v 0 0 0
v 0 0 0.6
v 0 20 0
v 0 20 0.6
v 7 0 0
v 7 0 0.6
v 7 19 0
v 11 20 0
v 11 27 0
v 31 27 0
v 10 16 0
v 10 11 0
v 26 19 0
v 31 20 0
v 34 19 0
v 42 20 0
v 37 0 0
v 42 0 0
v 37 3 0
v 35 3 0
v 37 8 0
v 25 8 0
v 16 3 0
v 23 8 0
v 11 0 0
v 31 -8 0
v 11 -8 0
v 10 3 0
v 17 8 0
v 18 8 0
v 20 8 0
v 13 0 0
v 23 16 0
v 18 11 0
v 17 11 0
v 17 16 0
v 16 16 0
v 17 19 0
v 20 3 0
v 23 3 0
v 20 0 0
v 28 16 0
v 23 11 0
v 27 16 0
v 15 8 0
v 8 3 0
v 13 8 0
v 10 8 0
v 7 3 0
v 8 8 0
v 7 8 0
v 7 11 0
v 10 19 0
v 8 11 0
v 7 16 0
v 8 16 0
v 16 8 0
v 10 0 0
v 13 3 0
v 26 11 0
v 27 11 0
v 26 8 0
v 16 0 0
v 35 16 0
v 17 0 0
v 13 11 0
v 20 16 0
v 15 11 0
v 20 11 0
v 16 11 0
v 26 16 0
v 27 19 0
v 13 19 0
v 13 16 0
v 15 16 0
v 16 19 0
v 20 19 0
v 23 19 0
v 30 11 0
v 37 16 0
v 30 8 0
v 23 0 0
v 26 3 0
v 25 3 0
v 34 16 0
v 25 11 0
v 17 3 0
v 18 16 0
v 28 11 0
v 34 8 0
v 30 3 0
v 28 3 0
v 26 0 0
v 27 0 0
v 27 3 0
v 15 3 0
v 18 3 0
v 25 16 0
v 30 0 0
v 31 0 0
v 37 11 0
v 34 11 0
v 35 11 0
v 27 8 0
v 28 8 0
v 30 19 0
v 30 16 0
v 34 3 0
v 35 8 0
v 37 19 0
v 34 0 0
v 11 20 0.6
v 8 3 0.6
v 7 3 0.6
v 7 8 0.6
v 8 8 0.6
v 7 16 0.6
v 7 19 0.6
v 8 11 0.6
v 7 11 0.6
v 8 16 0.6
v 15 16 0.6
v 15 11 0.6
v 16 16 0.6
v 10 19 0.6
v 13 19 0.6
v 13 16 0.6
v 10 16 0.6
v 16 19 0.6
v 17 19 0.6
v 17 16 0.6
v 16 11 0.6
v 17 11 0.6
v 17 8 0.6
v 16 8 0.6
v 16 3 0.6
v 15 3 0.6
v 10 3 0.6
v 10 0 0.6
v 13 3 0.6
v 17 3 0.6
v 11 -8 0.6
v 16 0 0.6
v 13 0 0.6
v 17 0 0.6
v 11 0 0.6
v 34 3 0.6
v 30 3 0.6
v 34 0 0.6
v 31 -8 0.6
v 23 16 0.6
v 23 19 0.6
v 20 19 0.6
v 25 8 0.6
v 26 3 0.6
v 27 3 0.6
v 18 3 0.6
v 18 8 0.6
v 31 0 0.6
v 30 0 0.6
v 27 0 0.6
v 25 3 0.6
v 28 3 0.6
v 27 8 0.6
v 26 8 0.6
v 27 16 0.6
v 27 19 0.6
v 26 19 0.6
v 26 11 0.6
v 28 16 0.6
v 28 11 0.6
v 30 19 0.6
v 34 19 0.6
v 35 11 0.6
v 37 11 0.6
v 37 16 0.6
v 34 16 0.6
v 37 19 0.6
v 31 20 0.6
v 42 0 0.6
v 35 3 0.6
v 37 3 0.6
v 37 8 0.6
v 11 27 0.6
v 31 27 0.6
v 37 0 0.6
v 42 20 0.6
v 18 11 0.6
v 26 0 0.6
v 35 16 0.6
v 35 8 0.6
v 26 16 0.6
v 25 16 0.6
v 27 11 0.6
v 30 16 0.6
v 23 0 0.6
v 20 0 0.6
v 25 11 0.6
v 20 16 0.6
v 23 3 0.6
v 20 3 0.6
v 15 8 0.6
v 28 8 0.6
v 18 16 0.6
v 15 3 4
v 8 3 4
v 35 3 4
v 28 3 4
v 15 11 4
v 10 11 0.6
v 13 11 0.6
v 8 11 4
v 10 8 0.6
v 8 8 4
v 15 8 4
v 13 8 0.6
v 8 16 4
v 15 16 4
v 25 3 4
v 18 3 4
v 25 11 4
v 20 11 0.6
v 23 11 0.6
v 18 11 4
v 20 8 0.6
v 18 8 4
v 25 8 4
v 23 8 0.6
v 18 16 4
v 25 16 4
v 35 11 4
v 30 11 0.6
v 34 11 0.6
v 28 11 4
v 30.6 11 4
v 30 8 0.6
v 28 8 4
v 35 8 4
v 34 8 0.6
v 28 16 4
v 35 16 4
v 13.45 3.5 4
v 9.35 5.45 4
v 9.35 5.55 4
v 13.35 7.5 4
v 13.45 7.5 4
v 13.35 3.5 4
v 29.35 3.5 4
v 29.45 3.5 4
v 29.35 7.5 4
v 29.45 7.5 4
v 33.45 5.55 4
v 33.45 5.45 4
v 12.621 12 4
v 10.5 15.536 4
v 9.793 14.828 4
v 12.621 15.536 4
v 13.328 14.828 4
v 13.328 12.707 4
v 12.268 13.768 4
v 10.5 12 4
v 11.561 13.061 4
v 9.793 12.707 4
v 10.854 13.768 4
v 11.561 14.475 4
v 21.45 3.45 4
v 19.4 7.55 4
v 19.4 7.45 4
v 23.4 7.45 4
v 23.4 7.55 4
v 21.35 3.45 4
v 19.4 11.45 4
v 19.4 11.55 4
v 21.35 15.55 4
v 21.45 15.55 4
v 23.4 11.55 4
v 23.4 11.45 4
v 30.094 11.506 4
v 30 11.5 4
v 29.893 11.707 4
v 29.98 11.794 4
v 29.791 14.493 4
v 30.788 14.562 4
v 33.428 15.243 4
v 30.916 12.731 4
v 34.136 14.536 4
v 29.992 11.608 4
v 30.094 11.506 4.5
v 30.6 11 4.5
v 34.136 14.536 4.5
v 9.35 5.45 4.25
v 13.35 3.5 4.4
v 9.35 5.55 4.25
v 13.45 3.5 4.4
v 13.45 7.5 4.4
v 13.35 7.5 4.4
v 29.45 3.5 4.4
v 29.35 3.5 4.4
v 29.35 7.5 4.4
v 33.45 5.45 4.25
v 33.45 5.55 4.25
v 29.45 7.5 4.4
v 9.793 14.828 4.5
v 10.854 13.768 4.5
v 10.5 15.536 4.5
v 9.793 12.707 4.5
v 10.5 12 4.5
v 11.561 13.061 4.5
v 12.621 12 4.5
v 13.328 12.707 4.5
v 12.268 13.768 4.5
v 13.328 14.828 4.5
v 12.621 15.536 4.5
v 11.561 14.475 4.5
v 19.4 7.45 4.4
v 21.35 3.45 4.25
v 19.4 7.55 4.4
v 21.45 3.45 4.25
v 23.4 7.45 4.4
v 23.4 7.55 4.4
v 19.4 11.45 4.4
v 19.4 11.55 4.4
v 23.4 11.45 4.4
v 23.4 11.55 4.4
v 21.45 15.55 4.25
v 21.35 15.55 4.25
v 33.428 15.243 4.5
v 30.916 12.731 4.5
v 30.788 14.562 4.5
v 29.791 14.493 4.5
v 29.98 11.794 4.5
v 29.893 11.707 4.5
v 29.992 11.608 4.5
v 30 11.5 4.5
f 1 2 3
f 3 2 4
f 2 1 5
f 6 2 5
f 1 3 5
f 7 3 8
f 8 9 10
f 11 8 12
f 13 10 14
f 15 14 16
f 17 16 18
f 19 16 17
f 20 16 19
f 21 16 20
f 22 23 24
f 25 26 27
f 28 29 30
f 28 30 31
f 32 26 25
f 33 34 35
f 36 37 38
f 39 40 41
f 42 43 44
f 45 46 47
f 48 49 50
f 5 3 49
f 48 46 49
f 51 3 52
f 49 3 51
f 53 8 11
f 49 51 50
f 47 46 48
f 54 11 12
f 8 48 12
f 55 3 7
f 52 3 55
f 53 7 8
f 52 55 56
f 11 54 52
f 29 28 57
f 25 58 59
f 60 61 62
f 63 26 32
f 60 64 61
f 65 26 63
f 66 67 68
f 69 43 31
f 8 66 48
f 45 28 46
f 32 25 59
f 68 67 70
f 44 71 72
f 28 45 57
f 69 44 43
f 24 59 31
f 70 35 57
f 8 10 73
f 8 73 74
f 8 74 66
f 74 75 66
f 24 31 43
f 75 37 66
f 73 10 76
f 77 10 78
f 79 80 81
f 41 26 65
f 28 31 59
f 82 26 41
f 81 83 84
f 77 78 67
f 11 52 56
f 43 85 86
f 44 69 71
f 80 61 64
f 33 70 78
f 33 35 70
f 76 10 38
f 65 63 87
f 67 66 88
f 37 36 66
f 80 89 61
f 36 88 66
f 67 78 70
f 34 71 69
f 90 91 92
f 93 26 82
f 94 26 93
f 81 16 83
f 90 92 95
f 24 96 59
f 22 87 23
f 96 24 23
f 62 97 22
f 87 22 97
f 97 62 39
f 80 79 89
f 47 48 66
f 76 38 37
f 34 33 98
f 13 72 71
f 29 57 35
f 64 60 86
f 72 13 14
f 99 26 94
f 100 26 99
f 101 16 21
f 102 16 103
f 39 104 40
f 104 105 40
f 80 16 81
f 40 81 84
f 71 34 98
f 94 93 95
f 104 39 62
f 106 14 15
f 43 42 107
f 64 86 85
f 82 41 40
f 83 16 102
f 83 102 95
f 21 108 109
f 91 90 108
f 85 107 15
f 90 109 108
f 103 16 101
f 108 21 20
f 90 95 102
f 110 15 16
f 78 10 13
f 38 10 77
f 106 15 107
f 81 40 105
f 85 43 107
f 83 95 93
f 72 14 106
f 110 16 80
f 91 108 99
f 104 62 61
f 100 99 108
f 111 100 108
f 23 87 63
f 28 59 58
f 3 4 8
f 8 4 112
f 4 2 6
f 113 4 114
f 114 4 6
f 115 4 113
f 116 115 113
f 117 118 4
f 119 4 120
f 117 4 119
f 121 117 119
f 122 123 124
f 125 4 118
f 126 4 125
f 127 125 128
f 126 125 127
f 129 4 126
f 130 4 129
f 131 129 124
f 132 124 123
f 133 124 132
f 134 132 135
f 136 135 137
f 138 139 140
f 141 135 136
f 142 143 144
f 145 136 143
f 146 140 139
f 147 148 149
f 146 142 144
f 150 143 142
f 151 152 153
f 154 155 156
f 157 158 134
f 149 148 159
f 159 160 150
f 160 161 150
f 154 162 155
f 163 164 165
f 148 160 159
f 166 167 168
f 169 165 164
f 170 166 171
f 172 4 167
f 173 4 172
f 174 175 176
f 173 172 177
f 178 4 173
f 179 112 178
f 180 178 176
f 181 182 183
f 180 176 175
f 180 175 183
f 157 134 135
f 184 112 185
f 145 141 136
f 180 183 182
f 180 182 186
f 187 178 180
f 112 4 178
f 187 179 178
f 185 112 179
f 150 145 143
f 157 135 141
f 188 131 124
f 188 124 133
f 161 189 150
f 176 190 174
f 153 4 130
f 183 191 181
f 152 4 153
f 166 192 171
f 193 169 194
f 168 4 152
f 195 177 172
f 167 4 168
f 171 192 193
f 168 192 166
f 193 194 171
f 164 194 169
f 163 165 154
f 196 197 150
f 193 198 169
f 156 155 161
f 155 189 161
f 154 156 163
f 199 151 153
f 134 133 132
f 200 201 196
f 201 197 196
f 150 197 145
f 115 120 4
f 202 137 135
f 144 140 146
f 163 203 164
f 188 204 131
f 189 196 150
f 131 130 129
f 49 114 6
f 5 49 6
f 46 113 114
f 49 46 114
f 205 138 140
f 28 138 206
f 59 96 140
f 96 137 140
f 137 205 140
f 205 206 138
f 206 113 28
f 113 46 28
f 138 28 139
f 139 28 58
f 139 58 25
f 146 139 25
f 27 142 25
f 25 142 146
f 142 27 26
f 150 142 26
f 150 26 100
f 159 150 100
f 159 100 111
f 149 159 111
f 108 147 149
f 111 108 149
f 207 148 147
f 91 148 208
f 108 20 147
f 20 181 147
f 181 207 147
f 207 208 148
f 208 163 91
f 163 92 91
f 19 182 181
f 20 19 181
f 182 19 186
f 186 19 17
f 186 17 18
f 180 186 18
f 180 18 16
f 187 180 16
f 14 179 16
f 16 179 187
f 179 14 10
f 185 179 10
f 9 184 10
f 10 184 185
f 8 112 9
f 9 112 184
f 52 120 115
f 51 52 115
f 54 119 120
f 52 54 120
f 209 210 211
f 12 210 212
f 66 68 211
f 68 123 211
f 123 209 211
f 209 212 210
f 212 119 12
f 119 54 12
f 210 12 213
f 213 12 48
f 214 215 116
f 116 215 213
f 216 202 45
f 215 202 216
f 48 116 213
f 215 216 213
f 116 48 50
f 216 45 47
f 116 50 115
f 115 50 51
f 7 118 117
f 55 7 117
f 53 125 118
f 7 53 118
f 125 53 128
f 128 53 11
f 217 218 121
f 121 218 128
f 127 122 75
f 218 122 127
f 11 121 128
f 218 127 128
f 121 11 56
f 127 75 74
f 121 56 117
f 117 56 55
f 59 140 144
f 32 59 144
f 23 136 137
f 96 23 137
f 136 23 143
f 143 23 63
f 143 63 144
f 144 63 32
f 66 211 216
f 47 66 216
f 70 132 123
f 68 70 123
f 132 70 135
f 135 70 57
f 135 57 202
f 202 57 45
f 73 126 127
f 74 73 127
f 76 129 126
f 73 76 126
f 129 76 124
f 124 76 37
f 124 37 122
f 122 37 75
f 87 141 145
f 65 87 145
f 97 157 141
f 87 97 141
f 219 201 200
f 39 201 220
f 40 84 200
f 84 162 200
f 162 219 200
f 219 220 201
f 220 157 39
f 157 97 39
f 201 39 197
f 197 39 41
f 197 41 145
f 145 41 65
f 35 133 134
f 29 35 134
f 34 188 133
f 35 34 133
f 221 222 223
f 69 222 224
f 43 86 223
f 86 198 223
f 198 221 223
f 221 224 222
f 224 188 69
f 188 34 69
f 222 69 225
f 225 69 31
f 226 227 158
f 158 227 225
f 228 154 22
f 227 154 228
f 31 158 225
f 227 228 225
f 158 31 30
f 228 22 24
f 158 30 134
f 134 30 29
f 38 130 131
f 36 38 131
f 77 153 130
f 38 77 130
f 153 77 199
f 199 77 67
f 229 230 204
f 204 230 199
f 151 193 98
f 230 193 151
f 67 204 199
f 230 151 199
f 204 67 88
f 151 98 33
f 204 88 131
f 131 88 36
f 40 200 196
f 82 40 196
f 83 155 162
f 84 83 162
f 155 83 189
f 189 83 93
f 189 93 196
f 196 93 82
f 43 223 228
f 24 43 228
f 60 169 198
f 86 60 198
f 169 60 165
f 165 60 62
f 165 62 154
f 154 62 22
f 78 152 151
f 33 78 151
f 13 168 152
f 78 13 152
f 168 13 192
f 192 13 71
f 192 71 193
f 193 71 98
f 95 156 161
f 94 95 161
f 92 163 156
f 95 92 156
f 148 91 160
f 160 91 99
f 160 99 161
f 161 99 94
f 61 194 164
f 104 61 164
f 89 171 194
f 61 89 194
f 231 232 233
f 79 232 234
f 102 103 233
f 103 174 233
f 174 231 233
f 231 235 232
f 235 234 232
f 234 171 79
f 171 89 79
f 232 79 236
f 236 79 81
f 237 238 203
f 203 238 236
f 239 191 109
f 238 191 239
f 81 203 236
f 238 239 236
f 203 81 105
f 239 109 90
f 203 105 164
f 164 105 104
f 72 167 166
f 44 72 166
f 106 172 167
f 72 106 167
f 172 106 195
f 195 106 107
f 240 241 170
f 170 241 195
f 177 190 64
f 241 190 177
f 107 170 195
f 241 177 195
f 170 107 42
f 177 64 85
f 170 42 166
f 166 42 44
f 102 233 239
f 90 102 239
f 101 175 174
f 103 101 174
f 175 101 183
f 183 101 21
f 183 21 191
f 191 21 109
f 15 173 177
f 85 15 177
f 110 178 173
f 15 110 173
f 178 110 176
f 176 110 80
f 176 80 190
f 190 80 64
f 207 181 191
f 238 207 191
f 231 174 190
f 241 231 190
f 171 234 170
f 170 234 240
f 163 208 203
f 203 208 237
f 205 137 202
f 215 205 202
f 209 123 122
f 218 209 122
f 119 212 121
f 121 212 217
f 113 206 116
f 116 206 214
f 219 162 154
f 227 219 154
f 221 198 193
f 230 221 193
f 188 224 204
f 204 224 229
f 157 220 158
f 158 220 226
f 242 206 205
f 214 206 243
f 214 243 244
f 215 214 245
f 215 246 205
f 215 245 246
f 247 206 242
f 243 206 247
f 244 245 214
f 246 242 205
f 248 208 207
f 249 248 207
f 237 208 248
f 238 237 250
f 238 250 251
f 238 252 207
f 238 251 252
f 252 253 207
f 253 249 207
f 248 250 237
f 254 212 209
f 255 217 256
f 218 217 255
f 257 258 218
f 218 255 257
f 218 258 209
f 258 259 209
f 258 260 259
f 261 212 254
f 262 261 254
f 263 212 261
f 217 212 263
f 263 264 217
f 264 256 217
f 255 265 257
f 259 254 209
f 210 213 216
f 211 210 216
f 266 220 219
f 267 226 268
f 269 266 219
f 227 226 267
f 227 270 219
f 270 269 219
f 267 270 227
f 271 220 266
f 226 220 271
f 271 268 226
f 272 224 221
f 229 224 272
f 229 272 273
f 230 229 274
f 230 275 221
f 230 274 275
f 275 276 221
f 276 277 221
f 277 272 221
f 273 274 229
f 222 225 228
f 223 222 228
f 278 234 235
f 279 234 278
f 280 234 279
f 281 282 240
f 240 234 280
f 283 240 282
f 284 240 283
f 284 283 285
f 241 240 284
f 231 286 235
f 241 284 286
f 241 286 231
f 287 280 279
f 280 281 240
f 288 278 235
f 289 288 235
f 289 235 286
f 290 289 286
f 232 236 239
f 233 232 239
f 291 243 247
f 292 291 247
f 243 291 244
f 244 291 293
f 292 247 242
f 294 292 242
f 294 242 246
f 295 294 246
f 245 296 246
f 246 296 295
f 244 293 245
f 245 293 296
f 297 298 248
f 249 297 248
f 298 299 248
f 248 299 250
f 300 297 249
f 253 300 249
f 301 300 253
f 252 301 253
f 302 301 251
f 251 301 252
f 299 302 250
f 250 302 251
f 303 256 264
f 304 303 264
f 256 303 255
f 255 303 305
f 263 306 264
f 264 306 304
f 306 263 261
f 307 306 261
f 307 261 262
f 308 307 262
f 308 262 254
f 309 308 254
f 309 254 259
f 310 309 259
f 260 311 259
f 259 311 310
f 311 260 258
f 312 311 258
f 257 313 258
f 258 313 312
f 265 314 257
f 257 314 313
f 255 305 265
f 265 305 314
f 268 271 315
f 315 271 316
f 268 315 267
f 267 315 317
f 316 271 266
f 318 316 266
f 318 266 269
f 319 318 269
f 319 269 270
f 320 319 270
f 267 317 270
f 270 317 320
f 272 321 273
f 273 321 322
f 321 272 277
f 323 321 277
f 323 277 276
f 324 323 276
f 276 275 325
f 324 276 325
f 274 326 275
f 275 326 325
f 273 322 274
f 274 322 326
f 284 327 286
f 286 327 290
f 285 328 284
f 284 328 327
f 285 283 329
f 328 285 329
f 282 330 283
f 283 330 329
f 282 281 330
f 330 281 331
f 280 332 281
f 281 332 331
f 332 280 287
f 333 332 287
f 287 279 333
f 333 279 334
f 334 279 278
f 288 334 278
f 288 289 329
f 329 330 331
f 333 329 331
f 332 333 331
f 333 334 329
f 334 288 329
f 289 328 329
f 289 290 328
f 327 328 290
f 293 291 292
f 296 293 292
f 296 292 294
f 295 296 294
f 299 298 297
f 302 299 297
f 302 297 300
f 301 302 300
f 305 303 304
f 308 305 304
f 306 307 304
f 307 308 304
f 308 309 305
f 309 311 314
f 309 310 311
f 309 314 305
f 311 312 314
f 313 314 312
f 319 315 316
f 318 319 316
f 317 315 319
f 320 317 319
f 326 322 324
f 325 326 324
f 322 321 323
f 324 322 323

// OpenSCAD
//translate([6.5,29.5,40])rotate([0,0,0])

keyboard();

module c(){
	cube([3,3,1]);
}
module keyboard(){

	y1=8;
	y2=16;
	y3=0;

	difference(){
	union(){
		cube([42,20,0.6]);
		translate([11,-8,0])cube([20,35,0.6]);
	}

	translate([7,y1,0])c();
	translate([13,y1,0])c();
	translate([17,y1,0])c();
	translate([23,y1,0])c();
	translate([27,y1,0])c();
	translate([34,y1,0])c();

	translate([7,y2,0])c();
	translate([13,y2,0])c();
	translate([17,y2,0])c();
	translate([23,y2,0])c();
	translate([27,y2,0])c();
	translate([34,y2,0])c();

	translate([7,y3,0])c();
	translate([13,y3,0])c();
	translate([17,y3,0])c();
	translate([23,y3,0])c();
	translate([27,y3,0])c();
	translate([34,y3,0])c();


	}
	kx=4;
	ky=-1;

	translate([kx+4,ky+4,0])but();
	translate([kx+5.4,ky+6.5,4.1])trg();


	translate([kx+4,ky+12,0])but();
	translate([kx+26,ky+12.5,3.9])rotate([0,0,4])cube([1,3,0.6]);

	translate([kx+26.6,ky+12,3.9])rotate([0,0,45])cube([5,1,0.6]);


	translate([kx+14,ky+4,0])but();
	translate([kx+17.4,ky+4.5,4.1])rotate([0,0,90])trg();

	translate([kx+14,ky+12,0])but();
	translate([kx+17.4,ky+16.5,4.1])rotate([0,0,270])trg();

	translate([kx+24,ky+4,0])but();
	translate([kx+29.4,ky+6.5,4.1])rotate([0,180,0])trg();
	translate([kx+24,ky+12,0])but();
	translate([kx+6.5,ky+13,3.9])rotate([0,0,45])x();

}

module but(){
	cube([7,5,4]);
}

module trg(){
	
	hull(){
	cube([0.1,0.1,0.3],center=true);
	translate([4,0,0])cube([0.1,4,0.6],center=true);
	}
}



module x(){

	cube([4,1,0.6]);
	translate([1.5,-1.5,0])cube([1,4,0.6]);


}
